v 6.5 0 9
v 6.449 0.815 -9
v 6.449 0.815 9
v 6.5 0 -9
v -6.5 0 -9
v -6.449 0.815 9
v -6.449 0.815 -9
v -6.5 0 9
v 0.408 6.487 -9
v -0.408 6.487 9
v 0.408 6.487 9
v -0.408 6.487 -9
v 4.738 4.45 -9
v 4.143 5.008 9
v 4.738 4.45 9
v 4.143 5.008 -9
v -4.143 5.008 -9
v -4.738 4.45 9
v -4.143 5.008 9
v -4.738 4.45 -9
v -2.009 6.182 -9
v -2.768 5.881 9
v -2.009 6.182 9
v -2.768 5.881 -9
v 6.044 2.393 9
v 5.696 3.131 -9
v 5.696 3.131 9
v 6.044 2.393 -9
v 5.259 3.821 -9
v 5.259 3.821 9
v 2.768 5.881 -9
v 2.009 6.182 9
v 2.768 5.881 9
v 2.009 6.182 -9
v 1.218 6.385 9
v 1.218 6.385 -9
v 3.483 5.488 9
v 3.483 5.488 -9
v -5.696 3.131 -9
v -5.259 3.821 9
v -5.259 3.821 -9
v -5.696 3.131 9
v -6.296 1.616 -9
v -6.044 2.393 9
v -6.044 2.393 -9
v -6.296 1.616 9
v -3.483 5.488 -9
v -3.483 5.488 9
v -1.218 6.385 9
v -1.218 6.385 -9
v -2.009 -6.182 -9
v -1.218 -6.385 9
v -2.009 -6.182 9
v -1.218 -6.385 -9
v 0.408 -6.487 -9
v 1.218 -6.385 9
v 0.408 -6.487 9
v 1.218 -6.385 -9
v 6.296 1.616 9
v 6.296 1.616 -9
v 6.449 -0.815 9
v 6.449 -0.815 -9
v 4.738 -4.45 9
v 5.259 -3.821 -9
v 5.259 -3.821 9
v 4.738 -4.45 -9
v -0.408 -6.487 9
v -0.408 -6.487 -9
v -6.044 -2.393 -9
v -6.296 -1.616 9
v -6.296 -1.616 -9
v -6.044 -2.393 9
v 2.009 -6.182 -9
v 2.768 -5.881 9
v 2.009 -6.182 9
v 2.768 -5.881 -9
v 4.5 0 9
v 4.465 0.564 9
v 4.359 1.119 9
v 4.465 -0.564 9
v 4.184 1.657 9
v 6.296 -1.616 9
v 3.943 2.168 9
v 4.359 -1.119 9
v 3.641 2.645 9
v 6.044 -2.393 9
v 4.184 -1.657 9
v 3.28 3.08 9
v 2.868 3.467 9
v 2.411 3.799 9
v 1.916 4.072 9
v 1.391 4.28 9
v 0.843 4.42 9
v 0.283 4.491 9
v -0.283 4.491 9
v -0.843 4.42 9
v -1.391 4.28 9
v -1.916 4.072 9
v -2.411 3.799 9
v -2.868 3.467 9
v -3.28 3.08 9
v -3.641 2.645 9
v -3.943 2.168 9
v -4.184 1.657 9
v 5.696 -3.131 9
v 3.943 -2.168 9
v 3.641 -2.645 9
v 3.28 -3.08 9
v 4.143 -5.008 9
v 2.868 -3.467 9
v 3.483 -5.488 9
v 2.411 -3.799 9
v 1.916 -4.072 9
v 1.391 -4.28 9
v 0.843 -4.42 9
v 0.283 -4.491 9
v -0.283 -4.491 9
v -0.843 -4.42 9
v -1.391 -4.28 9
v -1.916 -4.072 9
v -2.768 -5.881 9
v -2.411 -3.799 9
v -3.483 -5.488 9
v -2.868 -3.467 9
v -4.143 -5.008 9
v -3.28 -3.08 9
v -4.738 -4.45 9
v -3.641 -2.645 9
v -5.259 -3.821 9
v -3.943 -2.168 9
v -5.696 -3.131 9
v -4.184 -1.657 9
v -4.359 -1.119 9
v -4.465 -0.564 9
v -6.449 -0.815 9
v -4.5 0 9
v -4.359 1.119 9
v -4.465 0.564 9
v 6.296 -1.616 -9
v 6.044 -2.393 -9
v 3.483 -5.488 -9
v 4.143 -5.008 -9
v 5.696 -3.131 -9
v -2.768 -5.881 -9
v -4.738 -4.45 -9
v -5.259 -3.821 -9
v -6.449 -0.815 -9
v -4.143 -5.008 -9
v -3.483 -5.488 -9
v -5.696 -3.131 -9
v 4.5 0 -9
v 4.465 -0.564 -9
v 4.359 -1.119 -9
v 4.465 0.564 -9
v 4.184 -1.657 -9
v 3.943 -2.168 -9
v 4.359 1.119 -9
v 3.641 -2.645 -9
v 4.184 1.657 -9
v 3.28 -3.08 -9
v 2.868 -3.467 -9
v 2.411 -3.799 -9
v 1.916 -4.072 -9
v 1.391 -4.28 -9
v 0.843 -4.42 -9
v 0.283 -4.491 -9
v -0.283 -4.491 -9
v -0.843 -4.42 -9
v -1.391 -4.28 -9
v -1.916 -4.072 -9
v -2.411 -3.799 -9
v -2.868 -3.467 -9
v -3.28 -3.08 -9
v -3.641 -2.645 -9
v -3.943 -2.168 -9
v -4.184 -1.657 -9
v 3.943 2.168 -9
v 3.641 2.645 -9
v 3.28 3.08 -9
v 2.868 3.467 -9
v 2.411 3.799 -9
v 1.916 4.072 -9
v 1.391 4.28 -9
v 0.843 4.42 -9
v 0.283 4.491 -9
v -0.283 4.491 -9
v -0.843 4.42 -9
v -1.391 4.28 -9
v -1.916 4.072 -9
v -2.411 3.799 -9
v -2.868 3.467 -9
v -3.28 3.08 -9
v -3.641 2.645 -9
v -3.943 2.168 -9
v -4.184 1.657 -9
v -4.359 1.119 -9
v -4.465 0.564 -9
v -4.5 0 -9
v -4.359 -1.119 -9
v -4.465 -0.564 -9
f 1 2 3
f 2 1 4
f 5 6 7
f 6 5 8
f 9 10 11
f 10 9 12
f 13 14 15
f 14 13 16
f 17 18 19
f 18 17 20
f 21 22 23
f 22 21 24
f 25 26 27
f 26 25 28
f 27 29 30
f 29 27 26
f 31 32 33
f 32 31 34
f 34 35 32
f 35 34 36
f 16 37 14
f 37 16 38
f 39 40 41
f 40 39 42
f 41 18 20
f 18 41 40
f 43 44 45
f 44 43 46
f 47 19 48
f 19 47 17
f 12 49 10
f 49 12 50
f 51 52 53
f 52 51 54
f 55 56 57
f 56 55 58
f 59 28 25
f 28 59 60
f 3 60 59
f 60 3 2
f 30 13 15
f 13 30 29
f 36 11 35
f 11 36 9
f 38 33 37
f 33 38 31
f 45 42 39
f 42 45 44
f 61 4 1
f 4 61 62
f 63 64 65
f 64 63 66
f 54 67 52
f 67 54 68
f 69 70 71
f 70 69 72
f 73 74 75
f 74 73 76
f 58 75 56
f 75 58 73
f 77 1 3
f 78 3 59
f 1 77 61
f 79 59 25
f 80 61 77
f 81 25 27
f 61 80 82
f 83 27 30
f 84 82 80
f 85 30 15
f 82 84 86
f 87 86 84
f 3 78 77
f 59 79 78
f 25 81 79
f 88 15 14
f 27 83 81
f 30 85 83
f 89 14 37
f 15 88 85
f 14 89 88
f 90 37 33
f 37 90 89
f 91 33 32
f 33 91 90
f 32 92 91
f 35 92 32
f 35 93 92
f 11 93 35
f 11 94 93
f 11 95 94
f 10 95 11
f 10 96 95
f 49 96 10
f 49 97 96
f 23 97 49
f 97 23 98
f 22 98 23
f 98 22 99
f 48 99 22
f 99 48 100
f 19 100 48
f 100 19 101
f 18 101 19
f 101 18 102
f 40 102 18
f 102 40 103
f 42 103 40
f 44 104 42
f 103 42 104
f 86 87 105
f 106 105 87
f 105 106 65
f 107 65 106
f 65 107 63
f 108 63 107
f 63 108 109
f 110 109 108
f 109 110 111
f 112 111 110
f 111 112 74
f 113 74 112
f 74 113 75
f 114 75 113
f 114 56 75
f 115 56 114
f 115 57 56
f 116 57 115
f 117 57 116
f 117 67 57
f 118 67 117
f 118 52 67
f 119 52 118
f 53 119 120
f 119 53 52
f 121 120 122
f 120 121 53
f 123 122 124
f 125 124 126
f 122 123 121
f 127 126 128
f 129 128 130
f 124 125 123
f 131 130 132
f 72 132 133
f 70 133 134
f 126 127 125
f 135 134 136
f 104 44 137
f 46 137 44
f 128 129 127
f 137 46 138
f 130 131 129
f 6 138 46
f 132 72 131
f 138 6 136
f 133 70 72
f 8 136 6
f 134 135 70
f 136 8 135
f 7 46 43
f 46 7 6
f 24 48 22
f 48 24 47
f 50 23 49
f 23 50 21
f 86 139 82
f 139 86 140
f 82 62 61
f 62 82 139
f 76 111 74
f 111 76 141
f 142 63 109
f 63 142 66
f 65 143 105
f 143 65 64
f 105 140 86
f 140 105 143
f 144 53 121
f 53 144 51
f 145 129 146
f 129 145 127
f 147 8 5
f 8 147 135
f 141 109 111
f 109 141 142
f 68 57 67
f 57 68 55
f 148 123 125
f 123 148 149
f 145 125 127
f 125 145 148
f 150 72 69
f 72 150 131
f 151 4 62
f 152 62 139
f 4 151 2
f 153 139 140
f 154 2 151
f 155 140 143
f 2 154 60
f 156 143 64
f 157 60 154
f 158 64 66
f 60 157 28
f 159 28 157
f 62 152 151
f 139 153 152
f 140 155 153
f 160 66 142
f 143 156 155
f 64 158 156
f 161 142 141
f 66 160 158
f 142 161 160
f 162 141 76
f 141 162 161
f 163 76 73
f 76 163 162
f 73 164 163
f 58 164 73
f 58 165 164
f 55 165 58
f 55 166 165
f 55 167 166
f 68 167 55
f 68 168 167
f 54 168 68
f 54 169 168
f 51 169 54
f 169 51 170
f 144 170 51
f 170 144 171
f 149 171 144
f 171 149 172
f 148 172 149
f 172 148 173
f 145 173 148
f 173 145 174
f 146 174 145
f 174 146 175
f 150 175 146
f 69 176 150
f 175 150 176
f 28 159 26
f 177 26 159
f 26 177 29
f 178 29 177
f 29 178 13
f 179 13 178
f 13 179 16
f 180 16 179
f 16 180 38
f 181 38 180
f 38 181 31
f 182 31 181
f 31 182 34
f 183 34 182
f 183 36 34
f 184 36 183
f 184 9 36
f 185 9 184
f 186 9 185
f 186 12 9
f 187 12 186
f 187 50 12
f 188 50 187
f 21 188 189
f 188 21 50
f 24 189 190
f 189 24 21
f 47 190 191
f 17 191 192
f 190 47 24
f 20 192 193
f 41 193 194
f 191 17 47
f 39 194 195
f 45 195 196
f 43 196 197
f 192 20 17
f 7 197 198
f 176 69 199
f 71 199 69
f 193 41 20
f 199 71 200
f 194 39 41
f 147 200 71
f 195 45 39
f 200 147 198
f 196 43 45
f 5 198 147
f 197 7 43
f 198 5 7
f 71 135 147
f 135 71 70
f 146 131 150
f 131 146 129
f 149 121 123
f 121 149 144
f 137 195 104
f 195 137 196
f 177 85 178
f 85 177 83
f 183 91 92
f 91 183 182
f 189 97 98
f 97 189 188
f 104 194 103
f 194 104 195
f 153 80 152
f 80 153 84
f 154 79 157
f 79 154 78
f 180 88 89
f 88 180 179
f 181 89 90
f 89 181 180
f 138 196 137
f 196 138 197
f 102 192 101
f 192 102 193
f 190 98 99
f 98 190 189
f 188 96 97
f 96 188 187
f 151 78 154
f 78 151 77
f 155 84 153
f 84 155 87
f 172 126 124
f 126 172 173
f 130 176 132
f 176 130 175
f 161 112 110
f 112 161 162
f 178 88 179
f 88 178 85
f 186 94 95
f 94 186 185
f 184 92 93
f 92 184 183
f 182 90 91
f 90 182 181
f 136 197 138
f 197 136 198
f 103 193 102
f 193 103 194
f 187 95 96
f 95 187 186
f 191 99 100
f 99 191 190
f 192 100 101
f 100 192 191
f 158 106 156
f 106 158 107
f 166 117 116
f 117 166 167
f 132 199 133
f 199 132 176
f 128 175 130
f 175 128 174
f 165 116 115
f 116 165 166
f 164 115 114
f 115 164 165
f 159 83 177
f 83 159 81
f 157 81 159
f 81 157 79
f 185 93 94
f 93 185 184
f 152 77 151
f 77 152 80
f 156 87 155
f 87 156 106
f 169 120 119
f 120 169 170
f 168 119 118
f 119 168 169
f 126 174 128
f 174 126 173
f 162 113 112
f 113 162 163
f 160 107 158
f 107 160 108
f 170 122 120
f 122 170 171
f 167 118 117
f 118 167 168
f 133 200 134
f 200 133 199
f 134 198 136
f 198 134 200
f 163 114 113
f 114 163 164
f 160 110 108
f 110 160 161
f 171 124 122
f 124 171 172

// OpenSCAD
$fn = 50;


difference() {
	union() {
		translate(v = [0, 0, -9.0000000000]) {
			cylinder(h = 18, r = 6.5000000000);
		}
	}
	union() {
		translate(v = [0, 0, -100.0000000000]) {
			cylinder(h = 200, r = 4.5000000000);
		}
	}
}
